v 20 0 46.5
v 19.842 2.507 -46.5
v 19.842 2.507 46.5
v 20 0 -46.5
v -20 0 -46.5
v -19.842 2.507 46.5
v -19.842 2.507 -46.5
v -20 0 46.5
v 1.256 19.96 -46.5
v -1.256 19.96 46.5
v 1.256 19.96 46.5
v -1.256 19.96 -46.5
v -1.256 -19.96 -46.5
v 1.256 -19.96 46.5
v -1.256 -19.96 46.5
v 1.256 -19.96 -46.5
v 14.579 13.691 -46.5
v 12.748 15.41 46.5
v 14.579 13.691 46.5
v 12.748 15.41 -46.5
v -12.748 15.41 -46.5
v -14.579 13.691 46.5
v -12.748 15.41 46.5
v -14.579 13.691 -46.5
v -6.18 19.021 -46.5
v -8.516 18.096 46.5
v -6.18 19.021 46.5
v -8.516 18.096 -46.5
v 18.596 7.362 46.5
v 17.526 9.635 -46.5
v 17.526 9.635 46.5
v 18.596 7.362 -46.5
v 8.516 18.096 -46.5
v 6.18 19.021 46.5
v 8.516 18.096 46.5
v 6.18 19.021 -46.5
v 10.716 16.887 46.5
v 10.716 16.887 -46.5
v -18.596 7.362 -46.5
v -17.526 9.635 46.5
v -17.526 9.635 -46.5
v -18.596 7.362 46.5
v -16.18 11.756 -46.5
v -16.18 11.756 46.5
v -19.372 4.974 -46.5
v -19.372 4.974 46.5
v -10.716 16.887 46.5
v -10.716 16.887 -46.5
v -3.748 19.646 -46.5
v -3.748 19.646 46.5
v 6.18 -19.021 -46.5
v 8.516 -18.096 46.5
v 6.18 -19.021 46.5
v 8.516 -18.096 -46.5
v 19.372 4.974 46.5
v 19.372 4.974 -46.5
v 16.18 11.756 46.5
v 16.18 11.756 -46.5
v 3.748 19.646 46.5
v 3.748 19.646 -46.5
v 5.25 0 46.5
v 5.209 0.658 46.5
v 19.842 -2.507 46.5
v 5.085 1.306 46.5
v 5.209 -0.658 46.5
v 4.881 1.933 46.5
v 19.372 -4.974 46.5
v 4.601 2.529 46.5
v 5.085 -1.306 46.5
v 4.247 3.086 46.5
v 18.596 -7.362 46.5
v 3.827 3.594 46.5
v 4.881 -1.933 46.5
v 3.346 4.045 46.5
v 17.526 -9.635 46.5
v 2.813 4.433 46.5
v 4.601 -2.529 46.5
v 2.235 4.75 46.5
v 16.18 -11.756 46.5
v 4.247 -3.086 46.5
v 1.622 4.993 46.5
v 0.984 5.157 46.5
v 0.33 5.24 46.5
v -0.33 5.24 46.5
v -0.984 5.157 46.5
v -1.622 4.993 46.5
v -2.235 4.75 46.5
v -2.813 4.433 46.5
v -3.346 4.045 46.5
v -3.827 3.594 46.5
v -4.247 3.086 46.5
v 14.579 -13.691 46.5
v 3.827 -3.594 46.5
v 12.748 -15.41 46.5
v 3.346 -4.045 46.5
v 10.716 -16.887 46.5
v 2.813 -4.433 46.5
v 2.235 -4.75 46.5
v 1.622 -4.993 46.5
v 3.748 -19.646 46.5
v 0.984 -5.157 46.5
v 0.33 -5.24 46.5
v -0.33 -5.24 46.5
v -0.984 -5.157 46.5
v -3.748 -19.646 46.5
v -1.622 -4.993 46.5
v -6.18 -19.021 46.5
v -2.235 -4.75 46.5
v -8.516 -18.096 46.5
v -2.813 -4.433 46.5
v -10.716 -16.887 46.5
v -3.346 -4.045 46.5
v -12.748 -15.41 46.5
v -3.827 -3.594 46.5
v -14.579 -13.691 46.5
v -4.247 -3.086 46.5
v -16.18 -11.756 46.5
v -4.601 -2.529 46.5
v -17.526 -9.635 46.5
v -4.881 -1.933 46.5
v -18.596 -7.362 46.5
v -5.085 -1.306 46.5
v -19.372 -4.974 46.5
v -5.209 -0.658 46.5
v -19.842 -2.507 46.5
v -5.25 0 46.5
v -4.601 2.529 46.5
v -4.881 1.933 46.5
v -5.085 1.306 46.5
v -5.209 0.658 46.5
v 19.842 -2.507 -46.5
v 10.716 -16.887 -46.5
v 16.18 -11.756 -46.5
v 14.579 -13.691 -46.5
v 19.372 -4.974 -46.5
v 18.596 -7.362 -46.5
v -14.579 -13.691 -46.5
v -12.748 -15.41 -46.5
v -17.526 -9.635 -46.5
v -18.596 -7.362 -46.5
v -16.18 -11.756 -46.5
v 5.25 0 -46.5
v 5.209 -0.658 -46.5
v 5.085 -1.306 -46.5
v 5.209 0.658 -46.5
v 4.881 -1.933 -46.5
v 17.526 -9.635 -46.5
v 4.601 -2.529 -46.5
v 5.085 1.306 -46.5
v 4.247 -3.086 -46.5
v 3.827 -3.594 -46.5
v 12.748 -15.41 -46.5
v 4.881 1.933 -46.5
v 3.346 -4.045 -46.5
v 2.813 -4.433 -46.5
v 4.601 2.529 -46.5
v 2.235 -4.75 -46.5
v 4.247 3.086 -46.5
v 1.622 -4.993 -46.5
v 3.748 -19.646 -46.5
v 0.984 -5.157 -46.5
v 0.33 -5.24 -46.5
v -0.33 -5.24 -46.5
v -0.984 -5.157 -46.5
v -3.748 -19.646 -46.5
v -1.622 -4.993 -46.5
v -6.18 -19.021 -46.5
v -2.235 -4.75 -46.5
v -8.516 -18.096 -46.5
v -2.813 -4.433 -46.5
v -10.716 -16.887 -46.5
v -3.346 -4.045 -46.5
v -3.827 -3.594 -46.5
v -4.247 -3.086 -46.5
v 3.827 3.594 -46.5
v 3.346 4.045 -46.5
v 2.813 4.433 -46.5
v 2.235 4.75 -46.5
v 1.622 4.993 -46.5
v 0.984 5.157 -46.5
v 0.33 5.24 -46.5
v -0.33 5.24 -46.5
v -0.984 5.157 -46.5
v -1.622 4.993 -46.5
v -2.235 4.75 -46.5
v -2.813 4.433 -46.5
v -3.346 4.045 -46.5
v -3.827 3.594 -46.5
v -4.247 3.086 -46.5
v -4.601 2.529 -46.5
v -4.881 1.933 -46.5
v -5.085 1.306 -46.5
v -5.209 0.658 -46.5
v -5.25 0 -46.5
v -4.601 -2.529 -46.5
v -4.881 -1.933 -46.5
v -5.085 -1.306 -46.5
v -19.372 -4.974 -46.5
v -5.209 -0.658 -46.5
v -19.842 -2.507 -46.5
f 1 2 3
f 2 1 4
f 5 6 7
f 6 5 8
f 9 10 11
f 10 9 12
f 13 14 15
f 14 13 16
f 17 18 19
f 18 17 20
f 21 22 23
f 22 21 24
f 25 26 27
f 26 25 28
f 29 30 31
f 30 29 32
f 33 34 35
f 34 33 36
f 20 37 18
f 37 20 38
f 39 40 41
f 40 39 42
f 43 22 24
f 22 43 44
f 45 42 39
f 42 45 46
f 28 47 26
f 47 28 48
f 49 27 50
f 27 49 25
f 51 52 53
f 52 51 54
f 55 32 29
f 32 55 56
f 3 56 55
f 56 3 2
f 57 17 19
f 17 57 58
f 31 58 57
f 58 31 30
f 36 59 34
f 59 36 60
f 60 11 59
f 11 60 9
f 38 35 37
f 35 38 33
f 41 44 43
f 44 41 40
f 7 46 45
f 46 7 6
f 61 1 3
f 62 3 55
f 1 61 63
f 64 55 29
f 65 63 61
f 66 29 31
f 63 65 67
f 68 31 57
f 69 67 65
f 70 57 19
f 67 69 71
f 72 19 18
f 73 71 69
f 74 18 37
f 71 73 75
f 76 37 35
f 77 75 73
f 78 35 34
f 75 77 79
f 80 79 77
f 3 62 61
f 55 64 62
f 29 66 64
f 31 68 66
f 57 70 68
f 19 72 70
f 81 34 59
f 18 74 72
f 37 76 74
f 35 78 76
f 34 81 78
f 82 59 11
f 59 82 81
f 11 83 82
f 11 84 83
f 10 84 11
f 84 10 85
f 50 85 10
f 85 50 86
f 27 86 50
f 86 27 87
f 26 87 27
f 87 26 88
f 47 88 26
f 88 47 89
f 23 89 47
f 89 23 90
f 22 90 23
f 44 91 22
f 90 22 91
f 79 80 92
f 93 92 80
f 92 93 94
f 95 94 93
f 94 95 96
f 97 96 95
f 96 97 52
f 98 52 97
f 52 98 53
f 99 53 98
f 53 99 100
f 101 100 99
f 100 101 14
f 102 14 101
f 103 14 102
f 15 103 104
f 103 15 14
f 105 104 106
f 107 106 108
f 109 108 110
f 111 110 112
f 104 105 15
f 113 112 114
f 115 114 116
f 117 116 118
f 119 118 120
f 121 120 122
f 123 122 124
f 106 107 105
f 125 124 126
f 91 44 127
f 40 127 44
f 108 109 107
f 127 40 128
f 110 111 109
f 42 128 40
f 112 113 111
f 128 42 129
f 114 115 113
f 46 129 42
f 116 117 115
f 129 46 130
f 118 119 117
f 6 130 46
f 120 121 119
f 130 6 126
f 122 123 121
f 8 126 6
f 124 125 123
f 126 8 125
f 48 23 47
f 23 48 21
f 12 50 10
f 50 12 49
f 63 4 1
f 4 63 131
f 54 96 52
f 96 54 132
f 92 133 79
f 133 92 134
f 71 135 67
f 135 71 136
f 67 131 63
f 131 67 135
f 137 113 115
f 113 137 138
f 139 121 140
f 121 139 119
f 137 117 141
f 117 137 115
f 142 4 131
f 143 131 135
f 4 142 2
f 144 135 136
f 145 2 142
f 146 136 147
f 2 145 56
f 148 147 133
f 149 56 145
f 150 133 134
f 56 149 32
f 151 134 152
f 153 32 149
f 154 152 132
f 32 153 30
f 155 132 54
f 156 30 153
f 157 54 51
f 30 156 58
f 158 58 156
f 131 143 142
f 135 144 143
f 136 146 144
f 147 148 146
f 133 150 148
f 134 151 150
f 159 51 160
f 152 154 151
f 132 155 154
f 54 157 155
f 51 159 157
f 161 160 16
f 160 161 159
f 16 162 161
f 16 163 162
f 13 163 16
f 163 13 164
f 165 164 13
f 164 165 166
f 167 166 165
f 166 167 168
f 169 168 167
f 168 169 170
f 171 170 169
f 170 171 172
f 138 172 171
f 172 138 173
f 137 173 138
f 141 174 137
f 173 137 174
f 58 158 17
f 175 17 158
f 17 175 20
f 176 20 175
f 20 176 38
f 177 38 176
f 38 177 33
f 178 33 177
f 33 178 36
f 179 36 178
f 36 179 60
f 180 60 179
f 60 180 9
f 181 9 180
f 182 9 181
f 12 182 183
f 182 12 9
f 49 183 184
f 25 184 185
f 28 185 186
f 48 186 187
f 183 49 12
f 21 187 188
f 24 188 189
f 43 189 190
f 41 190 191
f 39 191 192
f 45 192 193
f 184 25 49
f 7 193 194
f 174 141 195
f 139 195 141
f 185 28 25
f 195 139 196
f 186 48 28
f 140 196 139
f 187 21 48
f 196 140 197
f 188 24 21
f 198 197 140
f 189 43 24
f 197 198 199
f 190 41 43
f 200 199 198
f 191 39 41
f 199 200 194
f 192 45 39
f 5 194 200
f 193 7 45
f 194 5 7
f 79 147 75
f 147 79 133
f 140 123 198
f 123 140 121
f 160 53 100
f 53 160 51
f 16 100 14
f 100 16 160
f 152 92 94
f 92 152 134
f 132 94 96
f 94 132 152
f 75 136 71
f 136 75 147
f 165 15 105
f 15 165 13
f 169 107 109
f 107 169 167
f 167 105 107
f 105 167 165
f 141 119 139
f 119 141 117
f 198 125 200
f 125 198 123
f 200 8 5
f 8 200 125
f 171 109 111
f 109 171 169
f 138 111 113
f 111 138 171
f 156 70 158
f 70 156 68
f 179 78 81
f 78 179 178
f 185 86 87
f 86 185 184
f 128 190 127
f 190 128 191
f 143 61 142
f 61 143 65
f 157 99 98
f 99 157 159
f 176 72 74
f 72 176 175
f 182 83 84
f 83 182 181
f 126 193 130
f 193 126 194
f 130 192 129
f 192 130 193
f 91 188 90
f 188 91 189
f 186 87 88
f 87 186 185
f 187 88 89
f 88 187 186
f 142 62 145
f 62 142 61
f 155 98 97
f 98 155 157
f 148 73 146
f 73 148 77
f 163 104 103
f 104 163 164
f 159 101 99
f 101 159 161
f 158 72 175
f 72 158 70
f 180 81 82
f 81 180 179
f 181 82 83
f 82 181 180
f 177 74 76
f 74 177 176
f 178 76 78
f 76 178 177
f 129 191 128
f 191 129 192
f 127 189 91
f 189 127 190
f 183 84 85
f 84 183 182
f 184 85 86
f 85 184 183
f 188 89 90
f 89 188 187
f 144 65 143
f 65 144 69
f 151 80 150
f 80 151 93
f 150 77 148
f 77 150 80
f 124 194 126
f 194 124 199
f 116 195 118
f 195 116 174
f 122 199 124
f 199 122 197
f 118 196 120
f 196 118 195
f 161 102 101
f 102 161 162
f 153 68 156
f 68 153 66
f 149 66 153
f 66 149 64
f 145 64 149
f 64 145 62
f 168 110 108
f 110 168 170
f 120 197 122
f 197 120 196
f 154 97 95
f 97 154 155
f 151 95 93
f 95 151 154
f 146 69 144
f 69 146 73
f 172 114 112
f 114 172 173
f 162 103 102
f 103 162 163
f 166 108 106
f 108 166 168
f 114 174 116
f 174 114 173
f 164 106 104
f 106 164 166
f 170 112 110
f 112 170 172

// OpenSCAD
$fn = 50;


difference() {
	union() {
		translate(v = [0, 0, -46.5000000000]) {
			cylinder(h = 93, r = 20.0000000000);
		}
	}
	union() {
		translate(v = [0, 0, -100.0000000000]) {
			cylinder(h = 200, r = 5.2500000000);
		}
	}
}
